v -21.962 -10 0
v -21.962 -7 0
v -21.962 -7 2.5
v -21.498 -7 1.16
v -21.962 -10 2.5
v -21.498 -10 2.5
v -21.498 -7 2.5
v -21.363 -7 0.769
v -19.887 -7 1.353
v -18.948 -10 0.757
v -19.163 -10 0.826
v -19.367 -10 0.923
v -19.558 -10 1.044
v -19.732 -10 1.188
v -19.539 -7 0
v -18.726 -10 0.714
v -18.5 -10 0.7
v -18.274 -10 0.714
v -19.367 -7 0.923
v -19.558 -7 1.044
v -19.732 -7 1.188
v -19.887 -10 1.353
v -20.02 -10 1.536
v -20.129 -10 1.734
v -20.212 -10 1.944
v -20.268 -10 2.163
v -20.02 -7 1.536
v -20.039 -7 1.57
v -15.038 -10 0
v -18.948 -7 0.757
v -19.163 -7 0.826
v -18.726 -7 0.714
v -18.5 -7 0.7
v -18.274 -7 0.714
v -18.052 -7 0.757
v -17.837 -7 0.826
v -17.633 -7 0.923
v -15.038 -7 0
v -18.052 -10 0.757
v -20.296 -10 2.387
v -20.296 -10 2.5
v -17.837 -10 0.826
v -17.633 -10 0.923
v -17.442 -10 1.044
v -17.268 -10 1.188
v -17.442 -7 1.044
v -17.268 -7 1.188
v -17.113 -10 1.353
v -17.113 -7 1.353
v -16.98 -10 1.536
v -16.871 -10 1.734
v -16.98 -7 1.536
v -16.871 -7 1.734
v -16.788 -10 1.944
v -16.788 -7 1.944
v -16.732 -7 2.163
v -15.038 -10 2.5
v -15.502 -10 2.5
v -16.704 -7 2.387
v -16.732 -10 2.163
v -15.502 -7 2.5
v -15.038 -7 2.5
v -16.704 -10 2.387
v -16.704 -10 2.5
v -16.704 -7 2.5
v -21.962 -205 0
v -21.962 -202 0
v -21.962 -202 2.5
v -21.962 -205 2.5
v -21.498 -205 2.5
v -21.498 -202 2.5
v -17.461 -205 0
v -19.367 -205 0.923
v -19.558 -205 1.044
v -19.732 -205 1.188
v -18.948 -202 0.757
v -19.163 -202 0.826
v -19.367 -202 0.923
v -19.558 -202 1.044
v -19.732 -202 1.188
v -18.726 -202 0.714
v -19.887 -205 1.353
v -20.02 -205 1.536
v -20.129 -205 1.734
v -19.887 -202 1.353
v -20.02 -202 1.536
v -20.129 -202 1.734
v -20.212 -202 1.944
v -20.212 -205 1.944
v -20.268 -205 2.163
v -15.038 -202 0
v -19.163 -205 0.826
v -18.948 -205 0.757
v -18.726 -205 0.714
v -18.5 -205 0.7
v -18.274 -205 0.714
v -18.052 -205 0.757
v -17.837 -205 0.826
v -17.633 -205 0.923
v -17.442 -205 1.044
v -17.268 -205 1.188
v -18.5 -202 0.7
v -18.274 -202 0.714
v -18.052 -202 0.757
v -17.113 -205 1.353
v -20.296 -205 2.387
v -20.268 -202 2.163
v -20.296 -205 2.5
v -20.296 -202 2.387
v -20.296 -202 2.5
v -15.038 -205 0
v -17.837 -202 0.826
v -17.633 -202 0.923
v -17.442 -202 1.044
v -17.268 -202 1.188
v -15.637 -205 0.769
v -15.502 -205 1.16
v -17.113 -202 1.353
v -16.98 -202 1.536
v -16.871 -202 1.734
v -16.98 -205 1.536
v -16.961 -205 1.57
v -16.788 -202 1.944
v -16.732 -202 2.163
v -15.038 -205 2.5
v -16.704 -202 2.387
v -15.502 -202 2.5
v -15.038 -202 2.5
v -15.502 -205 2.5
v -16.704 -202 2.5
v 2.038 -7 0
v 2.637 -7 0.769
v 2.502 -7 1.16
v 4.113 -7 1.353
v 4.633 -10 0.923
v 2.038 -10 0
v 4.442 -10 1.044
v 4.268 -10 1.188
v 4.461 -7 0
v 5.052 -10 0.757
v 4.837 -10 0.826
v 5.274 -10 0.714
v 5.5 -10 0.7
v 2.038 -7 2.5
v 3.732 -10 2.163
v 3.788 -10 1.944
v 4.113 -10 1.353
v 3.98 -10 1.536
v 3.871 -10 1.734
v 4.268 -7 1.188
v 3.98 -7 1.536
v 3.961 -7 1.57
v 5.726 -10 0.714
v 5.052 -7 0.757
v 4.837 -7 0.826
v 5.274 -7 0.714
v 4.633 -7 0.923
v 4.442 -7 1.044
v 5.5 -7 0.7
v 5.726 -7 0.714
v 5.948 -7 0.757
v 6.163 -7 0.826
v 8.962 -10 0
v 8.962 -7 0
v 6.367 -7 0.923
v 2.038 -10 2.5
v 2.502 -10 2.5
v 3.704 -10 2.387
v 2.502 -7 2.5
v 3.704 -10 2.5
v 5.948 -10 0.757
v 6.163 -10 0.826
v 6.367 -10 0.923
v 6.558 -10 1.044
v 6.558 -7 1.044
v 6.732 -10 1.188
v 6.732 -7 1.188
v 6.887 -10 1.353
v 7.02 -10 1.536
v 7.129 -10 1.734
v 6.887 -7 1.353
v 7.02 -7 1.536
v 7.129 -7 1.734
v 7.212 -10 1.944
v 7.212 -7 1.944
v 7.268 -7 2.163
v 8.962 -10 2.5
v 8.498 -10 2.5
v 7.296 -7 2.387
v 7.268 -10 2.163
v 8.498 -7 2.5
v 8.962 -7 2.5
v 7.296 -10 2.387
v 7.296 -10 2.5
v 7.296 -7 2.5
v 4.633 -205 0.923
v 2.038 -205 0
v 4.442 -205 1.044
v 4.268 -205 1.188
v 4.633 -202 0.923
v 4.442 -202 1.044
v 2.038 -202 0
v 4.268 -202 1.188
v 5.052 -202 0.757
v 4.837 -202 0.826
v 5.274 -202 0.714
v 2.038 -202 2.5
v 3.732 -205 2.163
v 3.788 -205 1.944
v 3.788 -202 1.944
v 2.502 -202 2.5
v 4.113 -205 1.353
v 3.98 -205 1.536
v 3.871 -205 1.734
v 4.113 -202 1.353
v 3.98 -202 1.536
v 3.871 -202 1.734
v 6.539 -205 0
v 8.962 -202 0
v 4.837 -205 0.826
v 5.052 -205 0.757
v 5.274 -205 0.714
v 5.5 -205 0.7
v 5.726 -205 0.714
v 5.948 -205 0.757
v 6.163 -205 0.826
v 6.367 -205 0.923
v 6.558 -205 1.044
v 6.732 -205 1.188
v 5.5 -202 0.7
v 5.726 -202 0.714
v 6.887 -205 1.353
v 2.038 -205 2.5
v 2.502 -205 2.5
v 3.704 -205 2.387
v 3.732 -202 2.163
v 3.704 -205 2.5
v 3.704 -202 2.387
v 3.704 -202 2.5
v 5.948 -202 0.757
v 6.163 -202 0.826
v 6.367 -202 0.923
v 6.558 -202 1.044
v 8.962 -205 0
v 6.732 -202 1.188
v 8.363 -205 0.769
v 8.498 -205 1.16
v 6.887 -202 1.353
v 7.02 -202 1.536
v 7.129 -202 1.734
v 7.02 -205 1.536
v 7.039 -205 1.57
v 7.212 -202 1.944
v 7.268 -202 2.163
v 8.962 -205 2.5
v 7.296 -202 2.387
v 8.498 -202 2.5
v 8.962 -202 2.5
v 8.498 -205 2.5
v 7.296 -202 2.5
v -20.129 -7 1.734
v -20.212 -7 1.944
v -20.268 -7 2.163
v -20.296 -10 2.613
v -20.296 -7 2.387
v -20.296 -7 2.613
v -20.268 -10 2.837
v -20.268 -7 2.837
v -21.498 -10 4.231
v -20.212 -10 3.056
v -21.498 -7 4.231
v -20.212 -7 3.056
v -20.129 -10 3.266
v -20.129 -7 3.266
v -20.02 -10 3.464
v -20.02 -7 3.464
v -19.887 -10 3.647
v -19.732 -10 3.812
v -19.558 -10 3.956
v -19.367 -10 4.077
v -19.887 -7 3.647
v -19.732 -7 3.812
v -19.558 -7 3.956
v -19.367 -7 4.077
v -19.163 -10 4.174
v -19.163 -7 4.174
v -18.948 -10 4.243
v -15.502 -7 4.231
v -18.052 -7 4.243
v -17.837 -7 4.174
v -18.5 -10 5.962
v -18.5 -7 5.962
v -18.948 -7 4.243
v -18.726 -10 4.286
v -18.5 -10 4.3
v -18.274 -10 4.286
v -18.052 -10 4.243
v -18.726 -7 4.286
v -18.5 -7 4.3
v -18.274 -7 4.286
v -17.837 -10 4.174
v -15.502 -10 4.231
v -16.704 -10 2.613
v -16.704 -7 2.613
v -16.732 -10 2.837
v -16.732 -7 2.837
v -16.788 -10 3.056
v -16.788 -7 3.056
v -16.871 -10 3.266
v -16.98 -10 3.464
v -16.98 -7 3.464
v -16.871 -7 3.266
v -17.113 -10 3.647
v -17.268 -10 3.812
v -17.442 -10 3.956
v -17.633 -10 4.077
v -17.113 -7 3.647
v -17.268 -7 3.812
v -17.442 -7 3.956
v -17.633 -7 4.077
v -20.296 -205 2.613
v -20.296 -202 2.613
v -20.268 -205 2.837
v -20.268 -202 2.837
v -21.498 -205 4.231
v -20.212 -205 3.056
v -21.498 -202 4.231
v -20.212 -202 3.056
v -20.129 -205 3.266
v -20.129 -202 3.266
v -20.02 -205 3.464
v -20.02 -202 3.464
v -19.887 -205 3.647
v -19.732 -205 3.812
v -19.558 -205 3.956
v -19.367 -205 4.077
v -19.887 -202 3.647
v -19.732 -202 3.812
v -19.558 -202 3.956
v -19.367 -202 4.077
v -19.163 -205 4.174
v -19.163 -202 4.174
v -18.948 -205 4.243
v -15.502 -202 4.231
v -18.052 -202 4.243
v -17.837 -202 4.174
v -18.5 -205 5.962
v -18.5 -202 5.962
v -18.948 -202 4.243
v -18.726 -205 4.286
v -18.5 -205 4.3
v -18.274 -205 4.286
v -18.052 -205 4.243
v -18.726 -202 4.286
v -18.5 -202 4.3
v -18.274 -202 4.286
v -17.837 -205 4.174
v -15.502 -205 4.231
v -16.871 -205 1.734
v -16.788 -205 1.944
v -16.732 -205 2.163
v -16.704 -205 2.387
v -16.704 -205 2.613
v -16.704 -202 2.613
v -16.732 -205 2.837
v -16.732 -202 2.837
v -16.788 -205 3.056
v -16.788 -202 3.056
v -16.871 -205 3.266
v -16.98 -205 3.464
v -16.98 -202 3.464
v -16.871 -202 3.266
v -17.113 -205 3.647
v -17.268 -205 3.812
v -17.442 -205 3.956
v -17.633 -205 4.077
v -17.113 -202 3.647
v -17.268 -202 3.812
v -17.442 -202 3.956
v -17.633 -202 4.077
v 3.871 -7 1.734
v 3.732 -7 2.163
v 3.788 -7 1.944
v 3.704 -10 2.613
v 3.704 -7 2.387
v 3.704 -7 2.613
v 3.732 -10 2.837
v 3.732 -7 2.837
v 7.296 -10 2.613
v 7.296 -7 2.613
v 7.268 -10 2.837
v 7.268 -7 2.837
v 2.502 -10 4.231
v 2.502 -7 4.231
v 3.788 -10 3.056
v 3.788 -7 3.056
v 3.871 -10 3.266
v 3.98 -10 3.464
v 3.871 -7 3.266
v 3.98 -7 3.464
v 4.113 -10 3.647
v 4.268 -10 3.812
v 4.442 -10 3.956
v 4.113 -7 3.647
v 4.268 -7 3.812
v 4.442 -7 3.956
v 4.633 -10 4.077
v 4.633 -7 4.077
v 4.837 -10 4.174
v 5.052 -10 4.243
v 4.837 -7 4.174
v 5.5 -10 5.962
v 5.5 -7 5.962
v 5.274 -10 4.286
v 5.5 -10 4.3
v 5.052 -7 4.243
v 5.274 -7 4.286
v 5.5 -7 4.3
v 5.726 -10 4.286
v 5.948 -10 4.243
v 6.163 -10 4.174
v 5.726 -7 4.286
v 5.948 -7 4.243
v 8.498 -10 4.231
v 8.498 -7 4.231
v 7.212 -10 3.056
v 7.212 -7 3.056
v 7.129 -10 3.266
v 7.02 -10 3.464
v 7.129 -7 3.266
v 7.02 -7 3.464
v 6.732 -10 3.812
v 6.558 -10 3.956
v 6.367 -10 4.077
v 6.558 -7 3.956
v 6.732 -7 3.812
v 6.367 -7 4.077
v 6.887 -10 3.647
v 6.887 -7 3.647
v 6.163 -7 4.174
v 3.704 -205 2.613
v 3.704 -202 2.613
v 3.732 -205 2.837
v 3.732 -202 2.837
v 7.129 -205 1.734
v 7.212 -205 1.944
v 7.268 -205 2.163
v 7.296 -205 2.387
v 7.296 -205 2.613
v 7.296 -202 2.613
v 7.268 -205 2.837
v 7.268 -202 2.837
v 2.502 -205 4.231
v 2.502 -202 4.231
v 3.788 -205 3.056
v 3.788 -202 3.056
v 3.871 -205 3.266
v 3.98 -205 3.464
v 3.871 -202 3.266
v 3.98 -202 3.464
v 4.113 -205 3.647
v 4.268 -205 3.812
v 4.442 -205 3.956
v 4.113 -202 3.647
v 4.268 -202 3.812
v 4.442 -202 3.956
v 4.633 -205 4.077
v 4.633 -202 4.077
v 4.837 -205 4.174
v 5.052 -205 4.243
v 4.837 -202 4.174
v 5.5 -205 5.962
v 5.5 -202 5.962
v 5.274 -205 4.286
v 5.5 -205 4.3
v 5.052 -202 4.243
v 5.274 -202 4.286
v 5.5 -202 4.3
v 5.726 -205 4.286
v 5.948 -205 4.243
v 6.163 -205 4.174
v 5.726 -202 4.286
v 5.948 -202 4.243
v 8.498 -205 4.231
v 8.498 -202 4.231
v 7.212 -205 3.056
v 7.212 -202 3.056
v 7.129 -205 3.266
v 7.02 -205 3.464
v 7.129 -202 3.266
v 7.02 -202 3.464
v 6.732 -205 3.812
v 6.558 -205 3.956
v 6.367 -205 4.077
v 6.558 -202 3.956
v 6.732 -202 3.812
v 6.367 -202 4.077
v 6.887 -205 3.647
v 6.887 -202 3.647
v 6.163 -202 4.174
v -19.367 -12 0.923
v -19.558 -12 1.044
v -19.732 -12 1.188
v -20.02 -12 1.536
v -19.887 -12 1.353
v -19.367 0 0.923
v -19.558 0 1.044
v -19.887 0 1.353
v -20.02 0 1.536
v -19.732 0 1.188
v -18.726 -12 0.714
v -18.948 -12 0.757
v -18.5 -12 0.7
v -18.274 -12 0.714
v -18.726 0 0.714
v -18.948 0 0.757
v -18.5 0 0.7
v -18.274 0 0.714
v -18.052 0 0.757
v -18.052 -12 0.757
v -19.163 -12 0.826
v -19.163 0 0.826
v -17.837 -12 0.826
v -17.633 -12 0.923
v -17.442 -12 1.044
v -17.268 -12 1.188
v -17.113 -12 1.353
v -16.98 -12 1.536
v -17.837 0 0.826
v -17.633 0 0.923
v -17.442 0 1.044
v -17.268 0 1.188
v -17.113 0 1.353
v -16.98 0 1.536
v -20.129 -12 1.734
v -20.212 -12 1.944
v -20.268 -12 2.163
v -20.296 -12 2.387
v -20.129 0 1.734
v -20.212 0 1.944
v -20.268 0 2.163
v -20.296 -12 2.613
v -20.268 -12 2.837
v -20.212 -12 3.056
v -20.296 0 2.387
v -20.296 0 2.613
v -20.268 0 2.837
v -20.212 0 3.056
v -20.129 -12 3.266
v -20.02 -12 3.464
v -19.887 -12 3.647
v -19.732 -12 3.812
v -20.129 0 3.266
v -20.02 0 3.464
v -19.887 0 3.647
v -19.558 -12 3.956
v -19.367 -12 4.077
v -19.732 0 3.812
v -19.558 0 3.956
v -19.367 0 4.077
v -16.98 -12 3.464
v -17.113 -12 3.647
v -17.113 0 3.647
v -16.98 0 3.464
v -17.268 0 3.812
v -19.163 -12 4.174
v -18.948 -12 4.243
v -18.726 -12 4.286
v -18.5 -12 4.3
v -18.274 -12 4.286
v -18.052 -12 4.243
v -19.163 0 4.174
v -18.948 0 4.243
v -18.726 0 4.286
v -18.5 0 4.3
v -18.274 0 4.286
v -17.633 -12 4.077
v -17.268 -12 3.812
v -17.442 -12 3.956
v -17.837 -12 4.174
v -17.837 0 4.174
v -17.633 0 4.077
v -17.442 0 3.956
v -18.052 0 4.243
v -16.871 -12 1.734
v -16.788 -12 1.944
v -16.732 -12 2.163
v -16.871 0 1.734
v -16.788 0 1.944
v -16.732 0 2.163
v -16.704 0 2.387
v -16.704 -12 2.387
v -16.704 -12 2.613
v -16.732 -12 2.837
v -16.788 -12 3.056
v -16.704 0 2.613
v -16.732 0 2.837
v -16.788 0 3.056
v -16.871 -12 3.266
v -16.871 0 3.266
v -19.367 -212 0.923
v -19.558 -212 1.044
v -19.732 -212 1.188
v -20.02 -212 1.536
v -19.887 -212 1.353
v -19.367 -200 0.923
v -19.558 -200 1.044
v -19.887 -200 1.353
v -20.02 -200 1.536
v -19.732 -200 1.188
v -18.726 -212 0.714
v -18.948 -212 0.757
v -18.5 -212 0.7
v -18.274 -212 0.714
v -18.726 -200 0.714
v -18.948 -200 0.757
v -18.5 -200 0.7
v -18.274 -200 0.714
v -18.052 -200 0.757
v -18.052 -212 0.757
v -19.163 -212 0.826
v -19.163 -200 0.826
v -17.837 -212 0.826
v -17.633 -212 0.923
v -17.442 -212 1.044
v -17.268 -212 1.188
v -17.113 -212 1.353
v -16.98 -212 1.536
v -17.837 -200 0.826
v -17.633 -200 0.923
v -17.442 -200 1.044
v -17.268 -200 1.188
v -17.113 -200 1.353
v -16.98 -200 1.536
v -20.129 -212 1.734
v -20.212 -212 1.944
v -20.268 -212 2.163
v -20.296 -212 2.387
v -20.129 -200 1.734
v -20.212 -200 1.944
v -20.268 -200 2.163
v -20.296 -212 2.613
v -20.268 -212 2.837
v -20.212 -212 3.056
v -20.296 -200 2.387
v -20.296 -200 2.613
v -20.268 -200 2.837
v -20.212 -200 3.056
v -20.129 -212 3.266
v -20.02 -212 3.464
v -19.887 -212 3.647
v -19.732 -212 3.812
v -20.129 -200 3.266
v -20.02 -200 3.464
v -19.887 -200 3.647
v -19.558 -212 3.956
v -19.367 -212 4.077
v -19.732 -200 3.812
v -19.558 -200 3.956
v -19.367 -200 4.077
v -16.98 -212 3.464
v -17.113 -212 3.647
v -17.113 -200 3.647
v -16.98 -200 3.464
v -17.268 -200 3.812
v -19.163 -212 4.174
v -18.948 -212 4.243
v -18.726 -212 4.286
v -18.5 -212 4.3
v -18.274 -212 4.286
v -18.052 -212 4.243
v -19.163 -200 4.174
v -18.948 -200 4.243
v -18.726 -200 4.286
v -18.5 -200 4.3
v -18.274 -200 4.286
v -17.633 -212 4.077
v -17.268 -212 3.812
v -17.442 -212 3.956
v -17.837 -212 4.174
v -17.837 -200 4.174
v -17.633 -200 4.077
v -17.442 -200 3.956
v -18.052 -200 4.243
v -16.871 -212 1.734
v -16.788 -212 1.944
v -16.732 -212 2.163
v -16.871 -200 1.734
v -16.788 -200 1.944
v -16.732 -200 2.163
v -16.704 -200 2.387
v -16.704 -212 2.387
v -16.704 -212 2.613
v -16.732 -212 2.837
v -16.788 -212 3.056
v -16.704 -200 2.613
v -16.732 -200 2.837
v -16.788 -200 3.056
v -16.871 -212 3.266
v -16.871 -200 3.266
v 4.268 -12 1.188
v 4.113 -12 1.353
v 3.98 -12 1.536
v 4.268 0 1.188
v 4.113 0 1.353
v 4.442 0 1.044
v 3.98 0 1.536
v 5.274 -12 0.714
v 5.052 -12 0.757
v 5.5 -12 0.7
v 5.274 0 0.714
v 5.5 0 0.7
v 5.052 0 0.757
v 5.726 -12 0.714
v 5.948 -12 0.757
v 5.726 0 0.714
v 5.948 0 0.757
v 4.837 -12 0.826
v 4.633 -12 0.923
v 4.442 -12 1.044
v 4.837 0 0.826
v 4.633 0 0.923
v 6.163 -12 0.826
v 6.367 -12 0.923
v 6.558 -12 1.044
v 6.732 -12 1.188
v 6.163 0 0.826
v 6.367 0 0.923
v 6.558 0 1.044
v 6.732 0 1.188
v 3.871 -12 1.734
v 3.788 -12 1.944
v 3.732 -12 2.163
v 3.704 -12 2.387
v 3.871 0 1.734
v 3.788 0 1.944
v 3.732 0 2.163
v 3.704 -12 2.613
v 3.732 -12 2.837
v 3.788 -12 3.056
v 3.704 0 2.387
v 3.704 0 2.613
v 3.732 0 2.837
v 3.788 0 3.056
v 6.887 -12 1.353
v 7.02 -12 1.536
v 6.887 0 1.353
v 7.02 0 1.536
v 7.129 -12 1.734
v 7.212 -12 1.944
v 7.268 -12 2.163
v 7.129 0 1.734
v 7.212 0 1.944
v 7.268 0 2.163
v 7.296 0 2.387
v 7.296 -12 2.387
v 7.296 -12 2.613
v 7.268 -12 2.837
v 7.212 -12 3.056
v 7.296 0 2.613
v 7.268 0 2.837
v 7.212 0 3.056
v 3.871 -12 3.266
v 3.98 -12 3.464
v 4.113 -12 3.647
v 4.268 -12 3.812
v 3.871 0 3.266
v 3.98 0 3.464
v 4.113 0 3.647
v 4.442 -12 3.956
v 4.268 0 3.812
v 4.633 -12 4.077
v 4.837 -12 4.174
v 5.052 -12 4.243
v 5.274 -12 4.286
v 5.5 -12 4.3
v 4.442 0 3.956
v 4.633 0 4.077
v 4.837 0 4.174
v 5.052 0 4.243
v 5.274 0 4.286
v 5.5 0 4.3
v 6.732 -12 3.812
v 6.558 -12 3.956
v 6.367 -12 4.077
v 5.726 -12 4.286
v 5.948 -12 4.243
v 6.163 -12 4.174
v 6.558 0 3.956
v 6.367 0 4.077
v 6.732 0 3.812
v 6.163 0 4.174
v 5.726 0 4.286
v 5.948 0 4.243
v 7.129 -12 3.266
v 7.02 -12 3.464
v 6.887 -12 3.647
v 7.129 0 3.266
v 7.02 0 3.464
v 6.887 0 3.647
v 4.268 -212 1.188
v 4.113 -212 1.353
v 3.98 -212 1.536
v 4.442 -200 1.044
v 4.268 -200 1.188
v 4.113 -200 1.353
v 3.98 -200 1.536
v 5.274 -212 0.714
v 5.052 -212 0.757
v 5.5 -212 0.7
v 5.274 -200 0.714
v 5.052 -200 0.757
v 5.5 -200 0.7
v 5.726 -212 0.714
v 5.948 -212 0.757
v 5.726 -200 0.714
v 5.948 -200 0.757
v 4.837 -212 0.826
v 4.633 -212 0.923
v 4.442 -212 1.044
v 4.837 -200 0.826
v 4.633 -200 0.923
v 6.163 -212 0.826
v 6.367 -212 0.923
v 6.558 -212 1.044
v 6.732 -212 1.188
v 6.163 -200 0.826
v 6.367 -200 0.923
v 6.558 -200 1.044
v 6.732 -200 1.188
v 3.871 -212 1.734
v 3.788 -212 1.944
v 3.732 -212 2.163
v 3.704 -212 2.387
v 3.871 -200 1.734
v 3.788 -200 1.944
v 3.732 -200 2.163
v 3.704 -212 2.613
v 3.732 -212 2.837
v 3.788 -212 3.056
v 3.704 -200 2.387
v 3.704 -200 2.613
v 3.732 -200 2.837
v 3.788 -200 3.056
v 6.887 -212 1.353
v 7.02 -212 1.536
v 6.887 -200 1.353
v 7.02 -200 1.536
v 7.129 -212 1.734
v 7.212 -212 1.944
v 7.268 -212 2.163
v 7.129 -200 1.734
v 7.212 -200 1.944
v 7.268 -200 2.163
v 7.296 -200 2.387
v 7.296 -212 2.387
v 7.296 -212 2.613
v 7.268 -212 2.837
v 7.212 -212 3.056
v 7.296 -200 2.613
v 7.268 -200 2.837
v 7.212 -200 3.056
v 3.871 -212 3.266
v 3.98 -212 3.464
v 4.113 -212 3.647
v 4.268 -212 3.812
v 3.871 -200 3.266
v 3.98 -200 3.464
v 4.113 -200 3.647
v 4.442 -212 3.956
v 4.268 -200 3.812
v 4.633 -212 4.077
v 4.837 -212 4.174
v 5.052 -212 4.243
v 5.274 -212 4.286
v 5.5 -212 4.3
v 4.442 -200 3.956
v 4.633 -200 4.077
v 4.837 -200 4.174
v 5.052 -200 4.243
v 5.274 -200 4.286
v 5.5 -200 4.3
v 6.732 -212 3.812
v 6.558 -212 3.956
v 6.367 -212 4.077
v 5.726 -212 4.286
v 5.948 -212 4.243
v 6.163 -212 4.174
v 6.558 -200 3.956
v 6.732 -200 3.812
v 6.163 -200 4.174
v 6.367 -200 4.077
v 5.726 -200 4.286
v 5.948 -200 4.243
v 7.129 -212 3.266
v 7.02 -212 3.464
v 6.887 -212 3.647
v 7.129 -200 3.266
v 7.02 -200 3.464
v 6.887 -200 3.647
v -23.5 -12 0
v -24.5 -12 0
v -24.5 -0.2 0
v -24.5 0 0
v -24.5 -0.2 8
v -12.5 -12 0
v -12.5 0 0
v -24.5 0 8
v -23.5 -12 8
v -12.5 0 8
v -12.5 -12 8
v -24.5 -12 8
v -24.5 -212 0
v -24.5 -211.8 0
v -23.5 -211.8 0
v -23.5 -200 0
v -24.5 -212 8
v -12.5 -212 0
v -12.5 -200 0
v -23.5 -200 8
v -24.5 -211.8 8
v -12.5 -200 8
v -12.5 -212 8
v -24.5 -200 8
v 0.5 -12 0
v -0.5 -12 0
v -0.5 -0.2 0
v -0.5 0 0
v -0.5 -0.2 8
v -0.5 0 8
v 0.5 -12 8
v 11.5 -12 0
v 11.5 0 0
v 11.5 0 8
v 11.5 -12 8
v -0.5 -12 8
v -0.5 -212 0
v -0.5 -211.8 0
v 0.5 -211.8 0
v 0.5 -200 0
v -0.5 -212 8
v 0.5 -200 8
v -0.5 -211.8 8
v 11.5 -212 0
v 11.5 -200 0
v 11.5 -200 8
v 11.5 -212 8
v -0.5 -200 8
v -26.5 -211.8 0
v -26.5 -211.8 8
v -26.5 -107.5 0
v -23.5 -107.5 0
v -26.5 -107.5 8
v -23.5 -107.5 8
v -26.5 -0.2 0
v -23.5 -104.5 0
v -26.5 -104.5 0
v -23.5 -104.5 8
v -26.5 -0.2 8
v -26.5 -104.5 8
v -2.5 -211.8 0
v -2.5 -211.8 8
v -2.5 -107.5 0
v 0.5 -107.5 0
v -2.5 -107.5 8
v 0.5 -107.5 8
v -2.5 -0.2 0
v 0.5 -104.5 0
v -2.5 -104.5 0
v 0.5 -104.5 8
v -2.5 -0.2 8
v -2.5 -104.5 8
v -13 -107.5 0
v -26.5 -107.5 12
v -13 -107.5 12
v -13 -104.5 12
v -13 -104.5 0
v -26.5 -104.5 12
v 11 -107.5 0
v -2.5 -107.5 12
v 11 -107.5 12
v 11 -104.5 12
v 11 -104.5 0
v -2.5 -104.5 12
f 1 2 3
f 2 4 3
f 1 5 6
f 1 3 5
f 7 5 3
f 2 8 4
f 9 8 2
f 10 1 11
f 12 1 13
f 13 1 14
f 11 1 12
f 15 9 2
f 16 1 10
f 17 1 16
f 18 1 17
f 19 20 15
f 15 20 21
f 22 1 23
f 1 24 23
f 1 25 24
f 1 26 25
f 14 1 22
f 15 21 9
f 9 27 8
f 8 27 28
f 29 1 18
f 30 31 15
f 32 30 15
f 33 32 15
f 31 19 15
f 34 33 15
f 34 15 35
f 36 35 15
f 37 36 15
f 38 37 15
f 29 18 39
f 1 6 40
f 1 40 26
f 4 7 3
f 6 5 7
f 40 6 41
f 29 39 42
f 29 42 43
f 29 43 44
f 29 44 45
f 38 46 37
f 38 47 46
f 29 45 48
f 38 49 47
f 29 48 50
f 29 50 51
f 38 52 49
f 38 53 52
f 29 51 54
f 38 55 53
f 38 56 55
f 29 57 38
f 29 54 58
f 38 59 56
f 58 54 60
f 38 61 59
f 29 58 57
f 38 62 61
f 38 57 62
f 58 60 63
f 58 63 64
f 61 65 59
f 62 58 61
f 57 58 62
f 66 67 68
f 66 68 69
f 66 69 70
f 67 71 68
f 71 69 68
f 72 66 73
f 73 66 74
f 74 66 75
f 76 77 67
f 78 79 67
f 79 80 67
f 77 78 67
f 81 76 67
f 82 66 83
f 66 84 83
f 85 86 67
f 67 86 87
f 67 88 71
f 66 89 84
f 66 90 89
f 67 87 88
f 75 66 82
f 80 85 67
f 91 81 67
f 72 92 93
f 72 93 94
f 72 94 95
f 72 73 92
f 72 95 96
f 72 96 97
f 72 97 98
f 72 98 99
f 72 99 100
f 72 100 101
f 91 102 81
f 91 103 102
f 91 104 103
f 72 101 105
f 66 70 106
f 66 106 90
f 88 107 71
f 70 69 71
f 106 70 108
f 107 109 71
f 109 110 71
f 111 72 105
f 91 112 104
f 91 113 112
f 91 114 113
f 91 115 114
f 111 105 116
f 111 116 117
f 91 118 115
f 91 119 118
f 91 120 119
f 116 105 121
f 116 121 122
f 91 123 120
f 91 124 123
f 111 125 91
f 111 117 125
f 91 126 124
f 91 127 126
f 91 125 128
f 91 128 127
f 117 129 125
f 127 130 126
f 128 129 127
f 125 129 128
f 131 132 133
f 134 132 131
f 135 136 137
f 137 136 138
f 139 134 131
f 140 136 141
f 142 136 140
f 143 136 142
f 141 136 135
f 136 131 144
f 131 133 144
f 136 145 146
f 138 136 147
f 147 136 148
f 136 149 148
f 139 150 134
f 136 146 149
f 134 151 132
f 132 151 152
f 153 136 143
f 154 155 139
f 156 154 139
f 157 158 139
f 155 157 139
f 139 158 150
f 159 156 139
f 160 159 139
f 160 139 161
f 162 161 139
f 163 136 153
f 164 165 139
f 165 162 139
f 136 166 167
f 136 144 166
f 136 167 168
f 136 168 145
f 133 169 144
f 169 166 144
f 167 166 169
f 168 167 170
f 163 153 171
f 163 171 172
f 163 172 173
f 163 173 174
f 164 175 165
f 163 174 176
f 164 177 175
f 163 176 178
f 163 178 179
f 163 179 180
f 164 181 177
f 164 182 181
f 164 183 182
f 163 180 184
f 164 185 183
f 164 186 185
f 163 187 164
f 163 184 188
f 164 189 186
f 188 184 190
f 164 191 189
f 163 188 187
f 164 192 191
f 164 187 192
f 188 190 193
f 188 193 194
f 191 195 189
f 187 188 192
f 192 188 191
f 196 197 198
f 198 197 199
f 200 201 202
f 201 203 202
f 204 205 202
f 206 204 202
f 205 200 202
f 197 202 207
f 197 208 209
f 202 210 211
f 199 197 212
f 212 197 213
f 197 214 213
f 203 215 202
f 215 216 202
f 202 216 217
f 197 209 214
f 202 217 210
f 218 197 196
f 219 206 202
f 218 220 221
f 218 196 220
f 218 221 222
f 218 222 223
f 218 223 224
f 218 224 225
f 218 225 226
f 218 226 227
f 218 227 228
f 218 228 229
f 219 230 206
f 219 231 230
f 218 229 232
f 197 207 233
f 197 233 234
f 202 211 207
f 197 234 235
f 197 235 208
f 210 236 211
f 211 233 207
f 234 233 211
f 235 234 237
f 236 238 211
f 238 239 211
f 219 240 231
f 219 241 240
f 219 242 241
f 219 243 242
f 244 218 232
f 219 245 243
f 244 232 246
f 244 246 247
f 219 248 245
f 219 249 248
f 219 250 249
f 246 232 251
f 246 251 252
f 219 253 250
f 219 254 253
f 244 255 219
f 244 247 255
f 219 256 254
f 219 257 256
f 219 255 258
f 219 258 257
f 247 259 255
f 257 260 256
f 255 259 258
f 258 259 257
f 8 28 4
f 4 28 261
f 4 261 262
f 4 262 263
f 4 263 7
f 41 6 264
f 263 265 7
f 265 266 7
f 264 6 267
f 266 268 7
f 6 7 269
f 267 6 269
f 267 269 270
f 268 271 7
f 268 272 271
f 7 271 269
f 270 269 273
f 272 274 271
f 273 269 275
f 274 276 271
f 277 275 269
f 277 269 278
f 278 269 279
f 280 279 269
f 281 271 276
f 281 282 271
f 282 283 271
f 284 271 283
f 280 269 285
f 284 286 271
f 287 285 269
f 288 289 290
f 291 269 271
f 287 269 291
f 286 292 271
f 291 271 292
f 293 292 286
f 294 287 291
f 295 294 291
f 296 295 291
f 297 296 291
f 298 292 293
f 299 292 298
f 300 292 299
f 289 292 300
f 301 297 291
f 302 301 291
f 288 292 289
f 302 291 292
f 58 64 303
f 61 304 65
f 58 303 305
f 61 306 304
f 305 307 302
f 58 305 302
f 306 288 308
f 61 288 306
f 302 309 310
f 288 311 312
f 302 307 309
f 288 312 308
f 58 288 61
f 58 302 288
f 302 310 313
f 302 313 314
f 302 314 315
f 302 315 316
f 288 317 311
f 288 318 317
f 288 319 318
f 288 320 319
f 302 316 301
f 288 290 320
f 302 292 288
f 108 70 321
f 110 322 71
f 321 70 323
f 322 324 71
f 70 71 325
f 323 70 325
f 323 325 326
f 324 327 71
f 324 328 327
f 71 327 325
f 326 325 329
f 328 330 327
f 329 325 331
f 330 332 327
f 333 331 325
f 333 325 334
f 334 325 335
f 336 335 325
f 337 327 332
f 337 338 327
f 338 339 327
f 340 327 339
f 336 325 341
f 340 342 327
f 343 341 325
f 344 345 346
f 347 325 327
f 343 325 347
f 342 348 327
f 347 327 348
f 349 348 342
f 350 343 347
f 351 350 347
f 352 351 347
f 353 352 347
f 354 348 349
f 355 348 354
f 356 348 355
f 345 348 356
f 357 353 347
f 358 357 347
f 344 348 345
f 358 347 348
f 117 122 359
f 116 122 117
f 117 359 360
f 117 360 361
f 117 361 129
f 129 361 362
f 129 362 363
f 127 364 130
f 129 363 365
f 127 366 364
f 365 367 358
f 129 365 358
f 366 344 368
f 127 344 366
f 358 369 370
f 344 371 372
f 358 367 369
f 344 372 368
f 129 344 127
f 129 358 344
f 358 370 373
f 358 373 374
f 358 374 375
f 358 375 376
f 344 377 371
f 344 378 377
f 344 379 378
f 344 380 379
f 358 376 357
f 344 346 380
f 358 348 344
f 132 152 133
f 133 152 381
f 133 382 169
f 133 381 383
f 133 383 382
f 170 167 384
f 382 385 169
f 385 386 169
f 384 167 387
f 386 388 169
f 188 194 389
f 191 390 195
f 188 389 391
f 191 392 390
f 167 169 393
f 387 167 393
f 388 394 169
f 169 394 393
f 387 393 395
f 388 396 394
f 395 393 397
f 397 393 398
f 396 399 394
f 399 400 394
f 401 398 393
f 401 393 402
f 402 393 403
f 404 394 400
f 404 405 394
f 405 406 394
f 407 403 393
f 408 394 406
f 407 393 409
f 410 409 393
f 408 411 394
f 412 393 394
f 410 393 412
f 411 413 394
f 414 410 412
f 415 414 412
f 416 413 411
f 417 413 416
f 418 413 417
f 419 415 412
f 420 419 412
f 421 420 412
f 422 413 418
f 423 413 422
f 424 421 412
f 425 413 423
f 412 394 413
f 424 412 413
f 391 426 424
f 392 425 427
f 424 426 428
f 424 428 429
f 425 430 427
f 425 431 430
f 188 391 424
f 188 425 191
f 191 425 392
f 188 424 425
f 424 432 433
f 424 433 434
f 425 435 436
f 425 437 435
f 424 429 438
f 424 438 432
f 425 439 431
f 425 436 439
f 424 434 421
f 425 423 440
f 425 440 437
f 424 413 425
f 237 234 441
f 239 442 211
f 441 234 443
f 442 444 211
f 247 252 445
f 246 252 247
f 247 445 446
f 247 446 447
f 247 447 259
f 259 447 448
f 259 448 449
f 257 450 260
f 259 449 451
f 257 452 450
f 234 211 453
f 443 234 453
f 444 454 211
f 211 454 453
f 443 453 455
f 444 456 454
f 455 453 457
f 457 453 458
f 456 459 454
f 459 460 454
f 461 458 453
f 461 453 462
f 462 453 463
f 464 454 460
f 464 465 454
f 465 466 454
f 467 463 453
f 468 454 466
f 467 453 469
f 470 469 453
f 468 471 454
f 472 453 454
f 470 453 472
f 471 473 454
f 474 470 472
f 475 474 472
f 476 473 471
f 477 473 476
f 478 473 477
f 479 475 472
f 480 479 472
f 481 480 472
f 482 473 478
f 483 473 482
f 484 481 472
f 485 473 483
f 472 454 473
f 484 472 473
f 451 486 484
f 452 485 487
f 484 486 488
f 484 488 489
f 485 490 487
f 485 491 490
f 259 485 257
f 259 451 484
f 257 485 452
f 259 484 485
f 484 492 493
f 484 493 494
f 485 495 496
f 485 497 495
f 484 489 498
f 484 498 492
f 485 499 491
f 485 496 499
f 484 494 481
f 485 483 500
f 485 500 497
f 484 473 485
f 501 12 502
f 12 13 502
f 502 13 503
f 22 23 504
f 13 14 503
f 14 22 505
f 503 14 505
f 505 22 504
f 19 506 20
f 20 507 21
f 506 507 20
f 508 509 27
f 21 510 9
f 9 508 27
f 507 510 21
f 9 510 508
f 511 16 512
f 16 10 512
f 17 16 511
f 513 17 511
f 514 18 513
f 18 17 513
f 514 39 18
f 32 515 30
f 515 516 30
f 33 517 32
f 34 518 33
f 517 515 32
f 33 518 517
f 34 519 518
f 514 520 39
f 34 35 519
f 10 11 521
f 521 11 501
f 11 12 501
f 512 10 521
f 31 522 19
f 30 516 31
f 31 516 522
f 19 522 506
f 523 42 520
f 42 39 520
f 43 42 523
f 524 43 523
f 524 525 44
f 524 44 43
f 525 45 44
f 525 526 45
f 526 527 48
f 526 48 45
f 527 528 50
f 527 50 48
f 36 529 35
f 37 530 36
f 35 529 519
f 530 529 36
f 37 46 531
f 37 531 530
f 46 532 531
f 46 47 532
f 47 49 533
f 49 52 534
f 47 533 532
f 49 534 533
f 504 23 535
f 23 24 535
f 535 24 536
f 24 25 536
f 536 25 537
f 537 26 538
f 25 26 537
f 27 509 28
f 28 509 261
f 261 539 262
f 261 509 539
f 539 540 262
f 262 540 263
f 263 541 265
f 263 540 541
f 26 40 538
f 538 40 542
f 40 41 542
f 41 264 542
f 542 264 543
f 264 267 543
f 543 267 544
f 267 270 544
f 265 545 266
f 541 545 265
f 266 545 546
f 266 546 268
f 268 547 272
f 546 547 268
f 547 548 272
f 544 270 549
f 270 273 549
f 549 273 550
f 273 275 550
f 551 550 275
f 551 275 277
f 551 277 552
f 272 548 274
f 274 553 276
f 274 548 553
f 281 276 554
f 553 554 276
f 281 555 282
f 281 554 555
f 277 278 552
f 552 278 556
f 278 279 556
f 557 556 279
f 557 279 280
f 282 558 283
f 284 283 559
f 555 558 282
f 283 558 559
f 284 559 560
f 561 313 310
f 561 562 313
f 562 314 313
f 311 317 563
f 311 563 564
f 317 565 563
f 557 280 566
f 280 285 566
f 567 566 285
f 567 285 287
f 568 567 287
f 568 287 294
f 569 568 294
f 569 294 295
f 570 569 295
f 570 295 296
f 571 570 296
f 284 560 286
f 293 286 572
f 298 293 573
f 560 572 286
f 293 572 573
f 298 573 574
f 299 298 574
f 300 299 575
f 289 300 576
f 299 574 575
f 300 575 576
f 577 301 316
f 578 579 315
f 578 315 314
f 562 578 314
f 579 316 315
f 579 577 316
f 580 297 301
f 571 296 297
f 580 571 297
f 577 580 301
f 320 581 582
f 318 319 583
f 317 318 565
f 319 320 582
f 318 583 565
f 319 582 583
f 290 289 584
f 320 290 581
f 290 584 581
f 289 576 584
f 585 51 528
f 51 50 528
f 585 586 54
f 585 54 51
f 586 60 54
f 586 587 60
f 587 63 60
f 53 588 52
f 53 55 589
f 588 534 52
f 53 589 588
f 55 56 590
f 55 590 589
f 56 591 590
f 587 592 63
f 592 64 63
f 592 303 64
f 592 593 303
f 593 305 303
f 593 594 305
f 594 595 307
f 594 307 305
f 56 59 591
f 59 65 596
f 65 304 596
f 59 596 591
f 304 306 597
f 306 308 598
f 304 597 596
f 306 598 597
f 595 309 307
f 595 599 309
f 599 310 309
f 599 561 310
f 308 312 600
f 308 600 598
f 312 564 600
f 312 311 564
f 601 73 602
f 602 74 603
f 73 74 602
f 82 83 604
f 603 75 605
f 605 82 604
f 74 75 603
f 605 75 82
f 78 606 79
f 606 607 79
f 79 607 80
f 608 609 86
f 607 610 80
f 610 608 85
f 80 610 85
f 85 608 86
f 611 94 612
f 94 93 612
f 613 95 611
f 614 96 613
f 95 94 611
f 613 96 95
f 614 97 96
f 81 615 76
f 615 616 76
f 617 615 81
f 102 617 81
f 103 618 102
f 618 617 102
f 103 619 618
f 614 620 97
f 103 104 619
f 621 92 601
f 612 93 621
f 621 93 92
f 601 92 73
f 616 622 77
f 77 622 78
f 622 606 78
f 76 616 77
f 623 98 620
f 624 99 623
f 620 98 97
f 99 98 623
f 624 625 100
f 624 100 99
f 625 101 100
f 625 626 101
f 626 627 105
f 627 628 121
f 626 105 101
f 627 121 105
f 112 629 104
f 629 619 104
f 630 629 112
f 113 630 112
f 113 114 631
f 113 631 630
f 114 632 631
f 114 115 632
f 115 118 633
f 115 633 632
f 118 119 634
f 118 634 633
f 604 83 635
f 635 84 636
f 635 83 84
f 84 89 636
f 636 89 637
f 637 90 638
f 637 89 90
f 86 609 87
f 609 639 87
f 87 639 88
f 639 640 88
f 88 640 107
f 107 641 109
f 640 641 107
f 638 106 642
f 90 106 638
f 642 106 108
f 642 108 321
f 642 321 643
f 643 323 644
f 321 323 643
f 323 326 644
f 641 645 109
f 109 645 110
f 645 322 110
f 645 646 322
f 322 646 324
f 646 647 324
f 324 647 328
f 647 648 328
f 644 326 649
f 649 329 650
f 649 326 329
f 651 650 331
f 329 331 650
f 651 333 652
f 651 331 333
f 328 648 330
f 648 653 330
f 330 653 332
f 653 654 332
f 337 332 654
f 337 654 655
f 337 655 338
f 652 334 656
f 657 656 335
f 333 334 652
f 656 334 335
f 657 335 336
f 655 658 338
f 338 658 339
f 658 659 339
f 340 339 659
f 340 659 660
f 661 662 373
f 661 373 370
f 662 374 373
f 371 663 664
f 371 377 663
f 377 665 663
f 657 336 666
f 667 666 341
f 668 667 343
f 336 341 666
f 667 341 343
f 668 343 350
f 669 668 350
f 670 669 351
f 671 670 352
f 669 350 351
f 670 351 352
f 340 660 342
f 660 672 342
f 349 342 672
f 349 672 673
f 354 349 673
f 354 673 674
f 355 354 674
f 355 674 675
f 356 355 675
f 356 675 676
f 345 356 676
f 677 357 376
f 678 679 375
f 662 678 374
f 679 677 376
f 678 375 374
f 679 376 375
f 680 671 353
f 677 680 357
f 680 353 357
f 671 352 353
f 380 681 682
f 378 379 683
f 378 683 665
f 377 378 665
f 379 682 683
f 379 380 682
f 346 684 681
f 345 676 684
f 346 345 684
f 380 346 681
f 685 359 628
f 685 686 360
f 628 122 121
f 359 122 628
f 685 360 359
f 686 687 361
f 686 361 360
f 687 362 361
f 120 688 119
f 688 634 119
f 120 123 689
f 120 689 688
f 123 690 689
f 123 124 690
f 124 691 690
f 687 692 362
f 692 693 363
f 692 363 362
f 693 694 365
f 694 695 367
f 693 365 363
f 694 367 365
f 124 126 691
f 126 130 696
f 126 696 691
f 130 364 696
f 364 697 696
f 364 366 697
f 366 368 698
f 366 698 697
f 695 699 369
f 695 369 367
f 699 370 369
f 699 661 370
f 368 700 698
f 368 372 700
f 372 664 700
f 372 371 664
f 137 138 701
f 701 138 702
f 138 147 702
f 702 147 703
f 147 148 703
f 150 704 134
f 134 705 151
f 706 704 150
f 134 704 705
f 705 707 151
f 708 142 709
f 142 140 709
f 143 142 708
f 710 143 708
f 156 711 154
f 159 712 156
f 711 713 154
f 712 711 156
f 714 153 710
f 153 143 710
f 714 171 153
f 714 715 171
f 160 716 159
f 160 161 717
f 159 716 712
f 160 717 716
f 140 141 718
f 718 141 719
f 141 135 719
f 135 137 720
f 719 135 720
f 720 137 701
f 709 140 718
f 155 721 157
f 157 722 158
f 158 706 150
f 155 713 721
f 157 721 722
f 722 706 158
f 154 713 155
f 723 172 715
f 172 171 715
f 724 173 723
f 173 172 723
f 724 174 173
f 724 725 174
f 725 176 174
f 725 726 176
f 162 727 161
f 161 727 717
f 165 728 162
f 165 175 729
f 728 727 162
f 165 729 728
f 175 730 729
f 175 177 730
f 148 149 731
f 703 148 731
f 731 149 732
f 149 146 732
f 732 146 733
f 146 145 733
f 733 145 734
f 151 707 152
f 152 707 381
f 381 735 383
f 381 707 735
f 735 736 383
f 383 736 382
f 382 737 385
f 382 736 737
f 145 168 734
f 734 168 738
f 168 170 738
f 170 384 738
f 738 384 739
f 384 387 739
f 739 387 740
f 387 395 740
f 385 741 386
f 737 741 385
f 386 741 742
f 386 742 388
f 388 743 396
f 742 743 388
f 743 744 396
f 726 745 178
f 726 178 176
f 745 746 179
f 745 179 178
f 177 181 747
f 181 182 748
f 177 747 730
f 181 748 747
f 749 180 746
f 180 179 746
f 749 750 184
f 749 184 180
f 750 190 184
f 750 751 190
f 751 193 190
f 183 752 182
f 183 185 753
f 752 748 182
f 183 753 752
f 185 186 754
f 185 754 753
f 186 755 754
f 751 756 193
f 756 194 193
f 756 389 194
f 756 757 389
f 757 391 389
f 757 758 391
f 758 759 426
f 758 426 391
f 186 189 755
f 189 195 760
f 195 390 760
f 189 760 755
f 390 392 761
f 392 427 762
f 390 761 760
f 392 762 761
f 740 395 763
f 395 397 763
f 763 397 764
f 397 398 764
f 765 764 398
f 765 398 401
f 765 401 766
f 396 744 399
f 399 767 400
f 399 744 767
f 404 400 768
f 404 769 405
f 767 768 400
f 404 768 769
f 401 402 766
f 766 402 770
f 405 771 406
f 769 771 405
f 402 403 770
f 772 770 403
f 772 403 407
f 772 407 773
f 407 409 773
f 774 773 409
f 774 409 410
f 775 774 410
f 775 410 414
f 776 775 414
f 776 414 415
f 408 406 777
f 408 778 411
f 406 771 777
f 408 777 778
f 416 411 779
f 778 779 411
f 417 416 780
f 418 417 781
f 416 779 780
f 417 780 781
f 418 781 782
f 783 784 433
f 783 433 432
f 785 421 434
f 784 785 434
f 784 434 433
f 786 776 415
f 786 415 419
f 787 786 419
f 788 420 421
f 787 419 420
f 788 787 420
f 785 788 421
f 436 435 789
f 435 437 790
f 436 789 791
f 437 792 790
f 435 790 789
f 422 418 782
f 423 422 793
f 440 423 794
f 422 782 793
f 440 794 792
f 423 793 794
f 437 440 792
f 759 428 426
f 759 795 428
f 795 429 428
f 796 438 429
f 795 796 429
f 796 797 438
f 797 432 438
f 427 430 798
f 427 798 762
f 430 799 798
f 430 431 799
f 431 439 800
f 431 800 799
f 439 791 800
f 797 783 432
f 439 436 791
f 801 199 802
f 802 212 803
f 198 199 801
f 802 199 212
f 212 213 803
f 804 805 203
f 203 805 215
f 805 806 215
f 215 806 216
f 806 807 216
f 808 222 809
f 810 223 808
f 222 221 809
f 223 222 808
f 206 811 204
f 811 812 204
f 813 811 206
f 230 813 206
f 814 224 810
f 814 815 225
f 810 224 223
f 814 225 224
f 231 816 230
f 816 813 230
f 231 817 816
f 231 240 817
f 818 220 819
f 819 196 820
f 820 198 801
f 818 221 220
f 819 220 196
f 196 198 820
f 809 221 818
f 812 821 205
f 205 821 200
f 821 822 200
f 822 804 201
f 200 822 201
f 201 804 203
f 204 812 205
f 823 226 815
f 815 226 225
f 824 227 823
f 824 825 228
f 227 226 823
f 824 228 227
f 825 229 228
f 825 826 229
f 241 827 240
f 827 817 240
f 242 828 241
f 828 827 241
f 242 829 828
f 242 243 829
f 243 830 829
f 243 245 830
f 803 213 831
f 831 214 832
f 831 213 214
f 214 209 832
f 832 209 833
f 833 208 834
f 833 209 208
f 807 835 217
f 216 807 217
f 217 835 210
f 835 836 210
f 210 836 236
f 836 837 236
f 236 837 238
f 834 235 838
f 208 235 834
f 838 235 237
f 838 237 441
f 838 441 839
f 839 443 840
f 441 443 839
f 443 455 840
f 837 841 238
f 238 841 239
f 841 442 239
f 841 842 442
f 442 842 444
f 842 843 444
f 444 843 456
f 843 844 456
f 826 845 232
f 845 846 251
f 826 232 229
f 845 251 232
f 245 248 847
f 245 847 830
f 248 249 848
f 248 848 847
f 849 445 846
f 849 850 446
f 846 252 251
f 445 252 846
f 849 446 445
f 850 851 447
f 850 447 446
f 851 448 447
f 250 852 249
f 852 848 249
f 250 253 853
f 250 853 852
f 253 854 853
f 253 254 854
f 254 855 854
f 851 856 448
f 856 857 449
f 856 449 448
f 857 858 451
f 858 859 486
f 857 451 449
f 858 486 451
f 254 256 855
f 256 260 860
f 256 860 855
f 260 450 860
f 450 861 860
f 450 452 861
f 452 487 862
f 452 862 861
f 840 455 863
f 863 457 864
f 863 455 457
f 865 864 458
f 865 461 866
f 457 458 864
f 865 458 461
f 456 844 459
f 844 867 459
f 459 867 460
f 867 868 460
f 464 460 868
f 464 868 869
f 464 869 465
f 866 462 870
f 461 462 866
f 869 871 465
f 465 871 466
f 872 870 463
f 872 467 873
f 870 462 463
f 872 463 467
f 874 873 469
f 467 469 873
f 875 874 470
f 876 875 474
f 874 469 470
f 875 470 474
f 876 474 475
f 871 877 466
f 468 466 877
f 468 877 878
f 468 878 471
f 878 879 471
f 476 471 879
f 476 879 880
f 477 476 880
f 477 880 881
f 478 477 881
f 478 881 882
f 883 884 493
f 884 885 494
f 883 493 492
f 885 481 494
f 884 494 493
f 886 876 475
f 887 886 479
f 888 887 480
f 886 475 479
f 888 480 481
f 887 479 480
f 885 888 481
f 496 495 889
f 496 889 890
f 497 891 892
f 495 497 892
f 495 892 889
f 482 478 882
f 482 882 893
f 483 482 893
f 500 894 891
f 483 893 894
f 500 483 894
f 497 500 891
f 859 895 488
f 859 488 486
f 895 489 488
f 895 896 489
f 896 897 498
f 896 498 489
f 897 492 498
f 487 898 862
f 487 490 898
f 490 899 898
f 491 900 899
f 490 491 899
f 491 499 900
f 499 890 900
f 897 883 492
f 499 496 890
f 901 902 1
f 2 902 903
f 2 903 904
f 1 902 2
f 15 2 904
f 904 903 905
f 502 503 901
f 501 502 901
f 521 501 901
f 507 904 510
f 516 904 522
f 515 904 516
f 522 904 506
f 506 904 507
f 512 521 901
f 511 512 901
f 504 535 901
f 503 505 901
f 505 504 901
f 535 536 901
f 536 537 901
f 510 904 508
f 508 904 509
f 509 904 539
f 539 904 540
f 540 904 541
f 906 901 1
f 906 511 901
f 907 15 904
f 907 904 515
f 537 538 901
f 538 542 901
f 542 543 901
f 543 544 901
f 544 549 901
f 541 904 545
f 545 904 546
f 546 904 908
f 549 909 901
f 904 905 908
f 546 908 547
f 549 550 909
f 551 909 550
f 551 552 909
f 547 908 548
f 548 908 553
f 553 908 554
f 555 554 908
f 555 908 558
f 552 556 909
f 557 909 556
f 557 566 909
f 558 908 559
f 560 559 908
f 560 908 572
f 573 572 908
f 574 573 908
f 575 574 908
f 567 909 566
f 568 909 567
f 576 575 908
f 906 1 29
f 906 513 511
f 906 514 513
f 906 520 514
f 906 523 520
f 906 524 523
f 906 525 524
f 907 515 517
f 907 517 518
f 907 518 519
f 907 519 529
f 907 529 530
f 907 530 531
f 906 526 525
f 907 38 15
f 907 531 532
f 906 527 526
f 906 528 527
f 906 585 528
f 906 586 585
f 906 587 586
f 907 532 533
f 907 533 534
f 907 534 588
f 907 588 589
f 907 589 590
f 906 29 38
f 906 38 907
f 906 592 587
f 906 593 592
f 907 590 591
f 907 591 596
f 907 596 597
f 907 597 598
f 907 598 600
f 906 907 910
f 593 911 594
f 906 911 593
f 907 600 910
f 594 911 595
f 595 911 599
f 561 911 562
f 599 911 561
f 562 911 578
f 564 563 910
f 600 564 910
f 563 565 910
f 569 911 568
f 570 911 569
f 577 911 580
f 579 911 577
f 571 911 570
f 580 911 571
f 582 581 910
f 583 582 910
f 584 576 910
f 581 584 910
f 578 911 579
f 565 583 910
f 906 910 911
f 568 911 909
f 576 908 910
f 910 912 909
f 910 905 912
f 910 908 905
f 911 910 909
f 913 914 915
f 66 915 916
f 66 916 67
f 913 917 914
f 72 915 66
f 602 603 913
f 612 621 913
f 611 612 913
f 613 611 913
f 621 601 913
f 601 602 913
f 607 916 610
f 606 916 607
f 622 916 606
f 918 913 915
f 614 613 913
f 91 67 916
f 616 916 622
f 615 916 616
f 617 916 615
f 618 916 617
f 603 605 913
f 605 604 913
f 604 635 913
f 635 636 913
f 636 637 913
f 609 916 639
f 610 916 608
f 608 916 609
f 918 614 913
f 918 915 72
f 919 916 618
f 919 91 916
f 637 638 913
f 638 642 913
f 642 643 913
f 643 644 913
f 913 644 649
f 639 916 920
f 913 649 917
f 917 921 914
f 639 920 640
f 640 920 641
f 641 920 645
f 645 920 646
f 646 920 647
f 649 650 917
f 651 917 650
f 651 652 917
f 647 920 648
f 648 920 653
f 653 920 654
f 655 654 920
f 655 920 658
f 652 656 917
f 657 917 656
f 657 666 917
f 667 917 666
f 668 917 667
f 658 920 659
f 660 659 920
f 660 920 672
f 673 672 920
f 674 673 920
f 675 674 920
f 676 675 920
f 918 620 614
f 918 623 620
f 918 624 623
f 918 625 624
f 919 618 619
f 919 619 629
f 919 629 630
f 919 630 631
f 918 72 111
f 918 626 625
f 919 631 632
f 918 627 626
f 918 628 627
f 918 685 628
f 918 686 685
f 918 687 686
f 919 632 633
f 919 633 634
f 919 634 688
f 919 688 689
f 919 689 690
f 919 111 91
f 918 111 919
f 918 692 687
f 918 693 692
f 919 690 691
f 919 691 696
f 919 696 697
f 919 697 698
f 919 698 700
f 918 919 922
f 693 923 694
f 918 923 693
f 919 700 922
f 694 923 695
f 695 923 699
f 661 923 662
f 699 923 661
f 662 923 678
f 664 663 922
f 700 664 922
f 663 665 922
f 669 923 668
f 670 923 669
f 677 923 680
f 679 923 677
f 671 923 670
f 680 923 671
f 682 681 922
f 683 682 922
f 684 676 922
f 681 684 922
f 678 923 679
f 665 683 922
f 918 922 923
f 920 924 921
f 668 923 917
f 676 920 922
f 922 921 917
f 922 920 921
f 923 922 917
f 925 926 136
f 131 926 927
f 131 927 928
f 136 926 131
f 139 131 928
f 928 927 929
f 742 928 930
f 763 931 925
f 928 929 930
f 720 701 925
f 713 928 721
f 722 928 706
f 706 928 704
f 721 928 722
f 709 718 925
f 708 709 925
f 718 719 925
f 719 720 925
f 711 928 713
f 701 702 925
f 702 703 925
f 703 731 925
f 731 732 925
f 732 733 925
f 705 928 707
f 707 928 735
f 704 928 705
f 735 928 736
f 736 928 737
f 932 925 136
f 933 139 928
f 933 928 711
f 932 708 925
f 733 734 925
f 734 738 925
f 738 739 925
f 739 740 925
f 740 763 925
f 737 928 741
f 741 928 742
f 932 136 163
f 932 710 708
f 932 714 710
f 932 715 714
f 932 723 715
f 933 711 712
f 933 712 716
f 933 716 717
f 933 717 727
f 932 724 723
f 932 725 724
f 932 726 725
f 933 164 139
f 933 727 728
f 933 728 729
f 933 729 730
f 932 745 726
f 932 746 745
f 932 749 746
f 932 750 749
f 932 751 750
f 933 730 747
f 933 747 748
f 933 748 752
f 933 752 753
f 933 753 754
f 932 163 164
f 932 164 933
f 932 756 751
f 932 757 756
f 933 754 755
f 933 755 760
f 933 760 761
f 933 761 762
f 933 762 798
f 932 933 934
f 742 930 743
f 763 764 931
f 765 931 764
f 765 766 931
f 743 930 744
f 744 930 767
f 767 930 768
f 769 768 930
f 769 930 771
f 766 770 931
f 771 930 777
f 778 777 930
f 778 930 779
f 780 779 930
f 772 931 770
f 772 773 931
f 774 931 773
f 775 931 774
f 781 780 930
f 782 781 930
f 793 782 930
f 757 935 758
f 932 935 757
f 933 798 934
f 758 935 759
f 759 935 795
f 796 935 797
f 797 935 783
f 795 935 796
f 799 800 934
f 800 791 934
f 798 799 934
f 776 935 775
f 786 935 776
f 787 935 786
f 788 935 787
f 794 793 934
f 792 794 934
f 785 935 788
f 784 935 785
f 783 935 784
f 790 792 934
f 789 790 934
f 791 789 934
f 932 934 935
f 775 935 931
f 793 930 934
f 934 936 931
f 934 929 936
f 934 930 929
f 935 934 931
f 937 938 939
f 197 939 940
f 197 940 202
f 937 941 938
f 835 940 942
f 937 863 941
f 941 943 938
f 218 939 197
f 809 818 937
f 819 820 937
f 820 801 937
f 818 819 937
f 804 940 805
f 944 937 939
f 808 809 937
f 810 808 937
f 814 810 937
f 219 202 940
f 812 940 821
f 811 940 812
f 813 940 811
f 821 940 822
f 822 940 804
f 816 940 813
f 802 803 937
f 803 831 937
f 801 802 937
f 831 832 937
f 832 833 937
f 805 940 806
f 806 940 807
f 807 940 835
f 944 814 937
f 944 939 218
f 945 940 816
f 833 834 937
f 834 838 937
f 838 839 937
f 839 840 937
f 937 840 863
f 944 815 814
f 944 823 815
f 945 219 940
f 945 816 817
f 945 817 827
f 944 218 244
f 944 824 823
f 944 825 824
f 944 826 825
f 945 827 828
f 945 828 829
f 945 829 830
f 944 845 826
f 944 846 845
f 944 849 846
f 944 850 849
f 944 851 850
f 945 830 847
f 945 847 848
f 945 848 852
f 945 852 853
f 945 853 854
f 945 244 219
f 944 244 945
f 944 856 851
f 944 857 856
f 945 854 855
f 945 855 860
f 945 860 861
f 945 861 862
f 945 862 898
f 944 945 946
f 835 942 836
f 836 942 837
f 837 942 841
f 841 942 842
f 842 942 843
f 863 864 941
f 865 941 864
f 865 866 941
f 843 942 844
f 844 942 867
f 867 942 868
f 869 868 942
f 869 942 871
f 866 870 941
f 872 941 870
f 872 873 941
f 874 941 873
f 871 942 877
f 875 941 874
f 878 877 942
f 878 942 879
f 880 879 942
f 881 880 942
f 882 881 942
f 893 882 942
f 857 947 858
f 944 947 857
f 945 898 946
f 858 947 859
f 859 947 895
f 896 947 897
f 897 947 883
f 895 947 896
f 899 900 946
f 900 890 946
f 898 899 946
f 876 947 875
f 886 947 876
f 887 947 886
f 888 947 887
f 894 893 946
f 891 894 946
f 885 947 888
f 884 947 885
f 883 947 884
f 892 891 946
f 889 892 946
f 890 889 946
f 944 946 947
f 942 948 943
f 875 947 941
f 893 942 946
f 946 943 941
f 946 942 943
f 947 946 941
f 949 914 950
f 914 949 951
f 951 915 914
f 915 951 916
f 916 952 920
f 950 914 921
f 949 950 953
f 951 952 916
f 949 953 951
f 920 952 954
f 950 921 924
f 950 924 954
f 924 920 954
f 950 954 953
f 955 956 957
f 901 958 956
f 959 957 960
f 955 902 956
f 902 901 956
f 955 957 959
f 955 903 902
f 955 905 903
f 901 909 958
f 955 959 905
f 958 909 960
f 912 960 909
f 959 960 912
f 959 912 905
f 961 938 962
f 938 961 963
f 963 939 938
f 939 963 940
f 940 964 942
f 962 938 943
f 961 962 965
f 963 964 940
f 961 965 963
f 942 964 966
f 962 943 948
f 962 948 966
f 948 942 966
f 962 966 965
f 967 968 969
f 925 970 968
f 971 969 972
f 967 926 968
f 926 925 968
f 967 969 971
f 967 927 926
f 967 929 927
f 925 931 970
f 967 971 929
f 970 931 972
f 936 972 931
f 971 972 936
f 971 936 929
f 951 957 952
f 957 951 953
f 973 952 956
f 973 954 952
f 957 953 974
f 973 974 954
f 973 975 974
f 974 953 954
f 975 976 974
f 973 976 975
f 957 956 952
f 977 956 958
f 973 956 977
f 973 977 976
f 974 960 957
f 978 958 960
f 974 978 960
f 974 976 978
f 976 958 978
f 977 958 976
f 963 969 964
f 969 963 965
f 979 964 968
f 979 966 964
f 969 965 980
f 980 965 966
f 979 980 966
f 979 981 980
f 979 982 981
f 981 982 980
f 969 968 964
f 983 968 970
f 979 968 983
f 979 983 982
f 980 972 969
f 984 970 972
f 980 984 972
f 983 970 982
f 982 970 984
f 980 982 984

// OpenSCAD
$fn = 50;

difference() {
	union() {
		translate(v = [-12.0, 0, 0]) {
			rotate(a = [0, 0, 0]) {
				difference() {
					union() {
						translate(v = [0, 0, 2.5]) {
							rotate(a = [0, -90, 0]) {
								difference() {
									union() {
										translate(v = [0, 0, 0]) {
											rotate(a = [0, 0, 0]) {
												difference() {
													union() {
														translate(v = [-2.5, -12.0, 0.5]) {
															cube(size = [8.0, 12.0, 12.0]);
														}
													}
													union() {
														translate(v = [0, -7.0, 6.5]) {
															rotate(a = [90, 0, 0]) {
																difference() {
																	union() {
																		translate(v = [-20.0, -3.4619999999999997, 0]) {
																			cube(size = [20, 6.9239999999999995, 3]);
																		}
																		linear_extrude(height = 3) {
																			polygon(points = [[3.4619999999999997, 0.0], [1.7310000000000003, 2.9981799479017264], [-1.7309999999999992, 2.9981799479017264], [-3.4619999999999997, 4.2397272186481365e-16], [-1.7310000000000014, -2.998179947901726], [1.7309999999999977, -2.9981799479017277]]);
																		}
																	}
																	union();
																}
															}
														}
														translate(v = [0, 0.1, 6.5]) {
															rotate(a = [90, 0, 0]) {
																cylinder(h = 20.0, r = 1.8);
															}
														}
													}
												}
											}
										}
										translate(v = [0, -212.0, 13.0]) {
											rotate(a = [180, 0, 0]) {
												difference() {
													union() {
														translate(v = [-2.5, -12.0, 0.5]) {
															cube(size = [8.0, 12.0, 12.0]);
														}
													}
													union() {
														translate(v = [0, -7.0, 6.5]) {
															rotate(a = [90, 0, 0]) {
																difference() {
																	union() {
																		translate(v = [-20.0, -3.4619999999999997, 0]) {
																			cube(size = [20, 6.9239999999999995, 3]);
																		}
																		linear_extrude(height = 3) {
																			polygon(points = [[3.4619999999999997, 0.0], [1.7310000000000003, 2.9981799479017264], [-1.7309999999999992, 2.9981799479017264], [-3.4619999999999997, 4.2397272186481365e-16], [-1.7310000000000014, -2.998179947901726], [1.7309999999999977, -2.9981799479017277]]);
																		}
																	}
																	union();
																}
															}
														}
														translate(v = [0, 0.1, 6.5]) {
															rotate(a = [90, 0, 0]) {
																cylinder(h = 20.0, r = 1.8);
															}
														}
													}
												}
											}
										}
										translate(v = [-2.5, -211.8, 11.5]) {
											cube(size = [8.0, 211.6, 3.0]);
										}
										translate(v = [-2.5, -107.5, 1.0]) {
											cube(size = [12.0, 3.0, 13.5]);
										}
									}
									union();
								}
							}
						}
					}
					union();
				}
			}
		}
		translate(v = [12.0, 0, 0]) {
			rotate(a = [0, 0, 0]) {
				difference() {
					union() {
						translate(v = [0, 0, 2.5]) {
							rotate(a = [0, -90, 0]) {
								difference() {
									union() {
										translate(v = [0, 0, 0]) {
											rotate(a = [0, 0, 0]) {
												difference() {
													union() {
														translate(v = [-2.5, -12.0, 0.5]) {
															cube(size = [8.0, 12.0, 12.0]);
														}
													}
													union() {
														translate(v = [0, -7.0, 6.5]) {
															rotate(a = [90, 0, 0]) {
																difference() {
																	union() {
																		translate(v = [-20.0, -3.4619999999999997, 0]) {
																			cube(size = [20, 6.9239999999999995, 3]);
																		}
																		linear_extrude(height = 3) {
																			polygon(points = [[3.4619999999999997, 0.0], [1.7310000000000003, 2.9981799479017264], [-1.7309999999999992, 2.9981799479017264], [-3.4619999999999997, 4.2397272186481365e-16], [-1.7310000000000014, -2.998179947901726], [1.7309999999999977, -2.9981799479017277]]);
																		}
																	}
																	union();
																}
															}
														}
														translate(v = [0, 0.1, 6.5]) {
															rotate(a = [90, 0, 0]) {
																cylinder(h = 20.0, r = 1.8);
															}
														}
													}
												}
											}
										}
										translate(v = [0, -212.0, 13.0]) {
											rotate(a = [180, 0, 0]) {
												difference() {
													union() {
														translate(v = [-2.5, -12.0, 0.5]) {
															cube(size = [8.0, 12.0, 12.0]);
														}
													}
													union() {
														translate(v = [0, -7.0, 6.5]) {
															rotate(a = [90, 0, 0]) {
																difference() {
																	union() {
																		translate(v = [-20.0, -3.4619999999999997, 0]) {
																			cube(size = [20, 6.9239999999999995, 3]);
																		}
																		linear_extrude(height = 3) {
																			polygon(points = [[3.4619999999999997, 0.0], [1.7310000000000003, 2.9981799479017264], [-1.7309999999999992, 2.9981799479017264], [-3.4619999999999997, 4.2397272186481365e-16], [-1.7310000000000014, -2.998179947901726], [1.7309999999999977, -2.9981799479017277]]);
																		}
																	}
																	union();
																}
															}
														}
														translate(v = [0, 0.1, 6.5]) {
															rotate(a = [90, 0, 0]) {
																cylinder(h = 20.0, r = 1.8);
															}
														}
													}
												}
											}
										}
										translate(v = [-2.5, -211.8, 11.5]) {
											cube(size = [8.0, 211.6, 3.0]);
										}
										translate(v = [-2.5, -107.5, 1.0]) {
											cube(size = [12.0, 3.0, 13.5]);
										}
									}
									union();
								}
							}
						}
					}
					union();
				}
			}
		}
	}
	union();
}
